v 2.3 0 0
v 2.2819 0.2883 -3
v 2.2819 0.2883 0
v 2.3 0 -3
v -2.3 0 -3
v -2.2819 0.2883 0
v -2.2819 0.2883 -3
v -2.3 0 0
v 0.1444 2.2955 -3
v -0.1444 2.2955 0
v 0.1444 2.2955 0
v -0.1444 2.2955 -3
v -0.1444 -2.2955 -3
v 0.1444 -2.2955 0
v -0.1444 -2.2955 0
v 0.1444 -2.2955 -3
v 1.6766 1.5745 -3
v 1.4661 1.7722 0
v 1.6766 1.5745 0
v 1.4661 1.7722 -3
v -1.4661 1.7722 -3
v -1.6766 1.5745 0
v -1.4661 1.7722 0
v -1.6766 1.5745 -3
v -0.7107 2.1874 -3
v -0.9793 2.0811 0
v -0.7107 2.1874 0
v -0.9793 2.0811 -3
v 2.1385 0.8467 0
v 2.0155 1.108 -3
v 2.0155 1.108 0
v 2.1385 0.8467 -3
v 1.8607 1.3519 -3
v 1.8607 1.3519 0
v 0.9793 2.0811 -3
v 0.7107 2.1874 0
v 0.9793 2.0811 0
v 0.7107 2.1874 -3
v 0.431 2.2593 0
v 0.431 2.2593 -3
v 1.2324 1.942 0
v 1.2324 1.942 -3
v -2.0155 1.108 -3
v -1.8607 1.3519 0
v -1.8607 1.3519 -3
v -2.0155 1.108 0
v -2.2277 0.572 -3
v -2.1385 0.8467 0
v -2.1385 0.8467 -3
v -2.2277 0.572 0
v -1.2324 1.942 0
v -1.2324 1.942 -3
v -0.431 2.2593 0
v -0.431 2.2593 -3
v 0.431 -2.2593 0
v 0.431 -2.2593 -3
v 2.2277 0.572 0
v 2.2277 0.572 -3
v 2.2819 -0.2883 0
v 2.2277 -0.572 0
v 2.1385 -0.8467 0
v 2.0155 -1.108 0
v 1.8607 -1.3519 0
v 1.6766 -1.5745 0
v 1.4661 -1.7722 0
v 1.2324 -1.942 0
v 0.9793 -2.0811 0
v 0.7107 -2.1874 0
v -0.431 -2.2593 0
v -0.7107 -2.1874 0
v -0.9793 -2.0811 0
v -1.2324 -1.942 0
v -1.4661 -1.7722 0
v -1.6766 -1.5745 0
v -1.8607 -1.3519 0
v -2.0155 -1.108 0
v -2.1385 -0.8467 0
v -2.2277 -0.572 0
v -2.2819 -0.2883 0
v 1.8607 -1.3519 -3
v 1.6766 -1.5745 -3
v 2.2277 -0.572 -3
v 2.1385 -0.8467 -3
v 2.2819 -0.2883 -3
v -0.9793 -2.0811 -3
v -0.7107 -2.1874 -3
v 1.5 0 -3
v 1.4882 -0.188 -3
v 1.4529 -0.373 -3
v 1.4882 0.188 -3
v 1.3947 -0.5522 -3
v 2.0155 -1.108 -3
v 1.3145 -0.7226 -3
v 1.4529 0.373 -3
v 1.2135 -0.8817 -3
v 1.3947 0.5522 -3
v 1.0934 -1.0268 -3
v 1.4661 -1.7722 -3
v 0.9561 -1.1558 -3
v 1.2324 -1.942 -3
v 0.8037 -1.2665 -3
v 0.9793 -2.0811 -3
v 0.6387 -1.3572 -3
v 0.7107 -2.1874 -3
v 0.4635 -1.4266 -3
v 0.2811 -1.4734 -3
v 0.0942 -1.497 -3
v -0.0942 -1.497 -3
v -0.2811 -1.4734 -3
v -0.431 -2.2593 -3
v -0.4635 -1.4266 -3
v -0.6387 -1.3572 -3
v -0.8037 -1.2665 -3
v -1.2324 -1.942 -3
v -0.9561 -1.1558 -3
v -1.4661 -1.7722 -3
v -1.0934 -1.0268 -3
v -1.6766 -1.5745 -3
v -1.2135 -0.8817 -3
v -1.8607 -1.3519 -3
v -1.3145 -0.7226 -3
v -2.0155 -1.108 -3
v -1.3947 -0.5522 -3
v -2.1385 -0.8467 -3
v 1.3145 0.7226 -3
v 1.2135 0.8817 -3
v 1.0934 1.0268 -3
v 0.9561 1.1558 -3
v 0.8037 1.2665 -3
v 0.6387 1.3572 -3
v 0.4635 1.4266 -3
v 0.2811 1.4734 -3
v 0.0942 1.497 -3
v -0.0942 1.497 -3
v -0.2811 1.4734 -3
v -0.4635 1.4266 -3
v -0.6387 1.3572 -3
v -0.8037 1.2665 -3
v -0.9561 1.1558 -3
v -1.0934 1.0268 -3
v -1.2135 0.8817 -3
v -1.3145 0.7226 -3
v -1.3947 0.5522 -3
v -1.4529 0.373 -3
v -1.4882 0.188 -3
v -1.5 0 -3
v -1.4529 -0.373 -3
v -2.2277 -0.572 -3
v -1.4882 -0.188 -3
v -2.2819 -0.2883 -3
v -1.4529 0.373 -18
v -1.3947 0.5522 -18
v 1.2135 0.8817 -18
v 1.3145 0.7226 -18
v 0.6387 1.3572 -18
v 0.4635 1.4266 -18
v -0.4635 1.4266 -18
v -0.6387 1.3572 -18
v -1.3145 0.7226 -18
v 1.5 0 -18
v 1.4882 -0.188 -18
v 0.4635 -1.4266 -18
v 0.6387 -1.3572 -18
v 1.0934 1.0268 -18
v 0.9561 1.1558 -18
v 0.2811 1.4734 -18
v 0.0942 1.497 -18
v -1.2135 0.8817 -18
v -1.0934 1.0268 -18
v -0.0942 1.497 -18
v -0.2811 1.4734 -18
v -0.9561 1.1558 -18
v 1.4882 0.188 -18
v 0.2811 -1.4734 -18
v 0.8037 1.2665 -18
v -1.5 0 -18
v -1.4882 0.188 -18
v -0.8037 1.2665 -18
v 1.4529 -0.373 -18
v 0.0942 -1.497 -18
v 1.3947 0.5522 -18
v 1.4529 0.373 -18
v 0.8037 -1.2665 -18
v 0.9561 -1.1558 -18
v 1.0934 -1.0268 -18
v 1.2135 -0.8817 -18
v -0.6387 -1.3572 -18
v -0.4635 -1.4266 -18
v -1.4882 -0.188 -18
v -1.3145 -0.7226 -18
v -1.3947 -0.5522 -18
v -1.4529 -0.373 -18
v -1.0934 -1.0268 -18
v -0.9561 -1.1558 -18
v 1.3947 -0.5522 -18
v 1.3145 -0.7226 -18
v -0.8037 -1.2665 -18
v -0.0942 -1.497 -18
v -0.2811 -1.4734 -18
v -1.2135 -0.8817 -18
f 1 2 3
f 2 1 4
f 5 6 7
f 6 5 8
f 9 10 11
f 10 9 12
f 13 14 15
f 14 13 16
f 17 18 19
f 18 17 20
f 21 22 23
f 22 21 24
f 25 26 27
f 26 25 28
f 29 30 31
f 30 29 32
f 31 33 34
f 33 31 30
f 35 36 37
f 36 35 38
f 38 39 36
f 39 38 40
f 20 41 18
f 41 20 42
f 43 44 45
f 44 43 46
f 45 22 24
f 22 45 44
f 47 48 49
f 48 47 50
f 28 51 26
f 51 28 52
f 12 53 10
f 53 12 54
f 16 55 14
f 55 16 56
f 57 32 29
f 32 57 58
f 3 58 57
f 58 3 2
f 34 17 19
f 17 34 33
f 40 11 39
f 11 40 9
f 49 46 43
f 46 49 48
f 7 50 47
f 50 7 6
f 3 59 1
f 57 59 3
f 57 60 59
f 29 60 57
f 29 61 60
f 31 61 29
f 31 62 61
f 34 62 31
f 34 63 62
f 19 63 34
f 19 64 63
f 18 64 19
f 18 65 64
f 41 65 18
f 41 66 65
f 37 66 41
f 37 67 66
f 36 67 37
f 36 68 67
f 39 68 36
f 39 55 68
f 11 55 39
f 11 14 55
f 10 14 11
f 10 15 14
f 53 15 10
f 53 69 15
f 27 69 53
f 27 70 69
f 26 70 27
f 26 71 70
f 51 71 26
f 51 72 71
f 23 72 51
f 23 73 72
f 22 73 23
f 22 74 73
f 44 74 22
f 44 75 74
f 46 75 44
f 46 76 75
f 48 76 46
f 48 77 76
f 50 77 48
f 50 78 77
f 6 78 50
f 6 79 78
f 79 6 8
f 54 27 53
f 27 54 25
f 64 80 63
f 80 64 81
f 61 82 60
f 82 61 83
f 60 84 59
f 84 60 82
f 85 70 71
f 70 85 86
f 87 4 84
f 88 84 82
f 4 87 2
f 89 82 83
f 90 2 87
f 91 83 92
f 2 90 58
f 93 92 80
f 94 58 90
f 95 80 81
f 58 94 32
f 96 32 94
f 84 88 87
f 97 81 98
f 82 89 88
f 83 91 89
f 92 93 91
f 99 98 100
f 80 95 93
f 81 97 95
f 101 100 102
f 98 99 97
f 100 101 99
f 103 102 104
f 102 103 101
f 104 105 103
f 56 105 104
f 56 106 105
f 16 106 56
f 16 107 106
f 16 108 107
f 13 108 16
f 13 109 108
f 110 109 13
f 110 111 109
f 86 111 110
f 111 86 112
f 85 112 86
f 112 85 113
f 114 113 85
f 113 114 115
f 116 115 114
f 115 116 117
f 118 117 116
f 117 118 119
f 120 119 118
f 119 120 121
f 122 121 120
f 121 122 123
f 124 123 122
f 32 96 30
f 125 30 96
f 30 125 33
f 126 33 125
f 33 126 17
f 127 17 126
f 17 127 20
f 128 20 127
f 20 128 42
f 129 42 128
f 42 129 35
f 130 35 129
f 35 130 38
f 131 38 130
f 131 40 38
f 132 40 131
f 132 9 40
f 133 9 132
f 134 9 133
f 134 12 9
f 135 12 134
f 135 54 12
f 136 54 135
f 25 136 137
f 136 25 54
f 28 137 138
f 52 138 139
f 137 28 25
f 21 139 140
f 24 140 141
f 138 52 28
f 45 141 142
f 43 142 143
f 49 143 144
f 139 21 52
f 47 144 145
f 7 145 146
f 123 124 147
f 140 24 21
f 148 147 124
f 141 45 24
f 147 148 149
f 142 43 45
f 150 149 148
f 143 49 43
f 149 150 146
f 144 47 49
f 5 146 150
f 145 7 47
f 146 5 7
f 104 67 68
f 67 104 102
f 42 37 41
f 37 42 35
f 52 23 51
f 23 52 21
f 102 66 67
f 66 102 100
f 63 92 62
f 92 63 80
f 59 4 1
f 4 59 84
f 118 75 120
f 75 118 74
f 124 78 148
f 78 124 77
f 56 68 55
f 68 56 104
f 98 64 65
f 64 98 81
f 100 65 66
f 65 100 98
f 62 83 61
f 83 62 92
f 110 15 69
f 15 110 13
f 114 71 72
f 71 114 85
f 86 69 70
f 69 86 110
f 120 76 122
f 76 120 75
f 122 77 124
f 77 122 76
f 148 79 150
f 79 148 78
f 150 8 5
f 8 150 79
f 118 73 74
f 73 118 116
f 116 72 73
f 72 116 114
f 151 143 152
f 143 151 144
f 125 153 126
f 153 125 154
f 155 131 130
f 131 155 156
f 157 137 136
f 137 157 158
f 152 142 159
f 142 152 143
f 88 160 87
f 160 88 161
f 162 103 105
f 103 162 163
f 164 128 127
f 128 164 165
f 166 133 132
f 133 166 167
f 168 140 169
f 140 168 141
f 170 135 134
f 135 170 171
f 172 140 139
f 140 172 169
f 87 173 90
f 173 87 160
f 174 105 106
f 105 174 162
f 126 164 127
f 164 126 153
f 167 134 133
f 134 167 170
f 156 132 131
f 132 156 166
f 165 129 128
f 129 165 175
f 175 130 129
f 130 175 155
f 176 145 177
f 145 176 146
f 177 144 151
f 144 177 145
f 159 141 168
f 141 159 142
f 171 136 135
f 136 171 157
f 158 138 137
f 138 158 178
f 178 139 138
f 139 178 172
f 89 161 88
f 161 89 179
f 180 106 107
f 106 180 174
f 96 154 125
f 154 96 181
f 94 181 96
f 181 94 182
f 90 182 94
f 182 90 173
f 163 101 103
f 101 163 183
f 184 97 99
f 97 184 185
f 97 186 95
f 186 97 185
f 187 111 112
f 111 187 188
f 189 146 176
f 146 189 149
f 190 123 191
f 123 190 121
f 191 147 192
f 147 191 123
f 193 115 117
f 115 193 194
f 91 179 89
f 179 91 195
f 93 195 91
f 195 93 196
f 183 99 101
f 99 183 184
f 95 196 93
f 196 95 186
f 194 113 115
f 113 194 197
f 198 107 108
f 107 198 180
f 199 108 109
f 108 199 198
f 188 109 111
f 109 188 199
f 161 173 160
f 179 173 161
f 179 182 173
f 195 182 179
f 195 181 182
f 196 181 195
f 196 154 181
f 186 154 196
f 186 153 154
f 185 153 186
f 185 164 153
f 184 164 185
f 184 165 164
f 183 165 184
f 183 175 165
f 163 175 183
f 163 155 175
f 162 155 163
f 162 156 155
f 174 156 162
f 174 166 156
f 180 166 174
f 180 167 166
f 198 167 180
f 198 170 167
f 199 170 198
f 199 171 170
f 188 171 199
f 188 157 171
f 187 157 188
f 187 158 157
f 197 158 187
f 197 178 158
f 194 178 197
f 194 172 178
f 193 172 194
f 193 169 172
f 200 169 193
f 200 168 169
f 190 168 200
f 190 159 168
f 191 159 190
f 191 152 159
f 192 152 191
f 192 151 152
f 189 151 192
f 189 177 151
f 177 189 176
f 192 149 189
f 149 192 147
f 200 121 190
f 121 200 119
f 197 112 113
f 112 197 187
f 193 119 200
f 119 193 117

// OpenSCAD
$fn = 50;


difference() {
	union() {
		translate(v = [0, 0, -3]) {
			rotate(a = [0, 0, 0]) {
				cylinder(h = 3, r1 = 2.3000000000, r2 = 2.3000000000);
			}
		}
		translate(v = [0, 0, -18]) {
			rotate(a = [0, 0, 0]) {
				cylinder(h = 18, r = 1.5000000000);
			}
		}
	}
	union();
}
